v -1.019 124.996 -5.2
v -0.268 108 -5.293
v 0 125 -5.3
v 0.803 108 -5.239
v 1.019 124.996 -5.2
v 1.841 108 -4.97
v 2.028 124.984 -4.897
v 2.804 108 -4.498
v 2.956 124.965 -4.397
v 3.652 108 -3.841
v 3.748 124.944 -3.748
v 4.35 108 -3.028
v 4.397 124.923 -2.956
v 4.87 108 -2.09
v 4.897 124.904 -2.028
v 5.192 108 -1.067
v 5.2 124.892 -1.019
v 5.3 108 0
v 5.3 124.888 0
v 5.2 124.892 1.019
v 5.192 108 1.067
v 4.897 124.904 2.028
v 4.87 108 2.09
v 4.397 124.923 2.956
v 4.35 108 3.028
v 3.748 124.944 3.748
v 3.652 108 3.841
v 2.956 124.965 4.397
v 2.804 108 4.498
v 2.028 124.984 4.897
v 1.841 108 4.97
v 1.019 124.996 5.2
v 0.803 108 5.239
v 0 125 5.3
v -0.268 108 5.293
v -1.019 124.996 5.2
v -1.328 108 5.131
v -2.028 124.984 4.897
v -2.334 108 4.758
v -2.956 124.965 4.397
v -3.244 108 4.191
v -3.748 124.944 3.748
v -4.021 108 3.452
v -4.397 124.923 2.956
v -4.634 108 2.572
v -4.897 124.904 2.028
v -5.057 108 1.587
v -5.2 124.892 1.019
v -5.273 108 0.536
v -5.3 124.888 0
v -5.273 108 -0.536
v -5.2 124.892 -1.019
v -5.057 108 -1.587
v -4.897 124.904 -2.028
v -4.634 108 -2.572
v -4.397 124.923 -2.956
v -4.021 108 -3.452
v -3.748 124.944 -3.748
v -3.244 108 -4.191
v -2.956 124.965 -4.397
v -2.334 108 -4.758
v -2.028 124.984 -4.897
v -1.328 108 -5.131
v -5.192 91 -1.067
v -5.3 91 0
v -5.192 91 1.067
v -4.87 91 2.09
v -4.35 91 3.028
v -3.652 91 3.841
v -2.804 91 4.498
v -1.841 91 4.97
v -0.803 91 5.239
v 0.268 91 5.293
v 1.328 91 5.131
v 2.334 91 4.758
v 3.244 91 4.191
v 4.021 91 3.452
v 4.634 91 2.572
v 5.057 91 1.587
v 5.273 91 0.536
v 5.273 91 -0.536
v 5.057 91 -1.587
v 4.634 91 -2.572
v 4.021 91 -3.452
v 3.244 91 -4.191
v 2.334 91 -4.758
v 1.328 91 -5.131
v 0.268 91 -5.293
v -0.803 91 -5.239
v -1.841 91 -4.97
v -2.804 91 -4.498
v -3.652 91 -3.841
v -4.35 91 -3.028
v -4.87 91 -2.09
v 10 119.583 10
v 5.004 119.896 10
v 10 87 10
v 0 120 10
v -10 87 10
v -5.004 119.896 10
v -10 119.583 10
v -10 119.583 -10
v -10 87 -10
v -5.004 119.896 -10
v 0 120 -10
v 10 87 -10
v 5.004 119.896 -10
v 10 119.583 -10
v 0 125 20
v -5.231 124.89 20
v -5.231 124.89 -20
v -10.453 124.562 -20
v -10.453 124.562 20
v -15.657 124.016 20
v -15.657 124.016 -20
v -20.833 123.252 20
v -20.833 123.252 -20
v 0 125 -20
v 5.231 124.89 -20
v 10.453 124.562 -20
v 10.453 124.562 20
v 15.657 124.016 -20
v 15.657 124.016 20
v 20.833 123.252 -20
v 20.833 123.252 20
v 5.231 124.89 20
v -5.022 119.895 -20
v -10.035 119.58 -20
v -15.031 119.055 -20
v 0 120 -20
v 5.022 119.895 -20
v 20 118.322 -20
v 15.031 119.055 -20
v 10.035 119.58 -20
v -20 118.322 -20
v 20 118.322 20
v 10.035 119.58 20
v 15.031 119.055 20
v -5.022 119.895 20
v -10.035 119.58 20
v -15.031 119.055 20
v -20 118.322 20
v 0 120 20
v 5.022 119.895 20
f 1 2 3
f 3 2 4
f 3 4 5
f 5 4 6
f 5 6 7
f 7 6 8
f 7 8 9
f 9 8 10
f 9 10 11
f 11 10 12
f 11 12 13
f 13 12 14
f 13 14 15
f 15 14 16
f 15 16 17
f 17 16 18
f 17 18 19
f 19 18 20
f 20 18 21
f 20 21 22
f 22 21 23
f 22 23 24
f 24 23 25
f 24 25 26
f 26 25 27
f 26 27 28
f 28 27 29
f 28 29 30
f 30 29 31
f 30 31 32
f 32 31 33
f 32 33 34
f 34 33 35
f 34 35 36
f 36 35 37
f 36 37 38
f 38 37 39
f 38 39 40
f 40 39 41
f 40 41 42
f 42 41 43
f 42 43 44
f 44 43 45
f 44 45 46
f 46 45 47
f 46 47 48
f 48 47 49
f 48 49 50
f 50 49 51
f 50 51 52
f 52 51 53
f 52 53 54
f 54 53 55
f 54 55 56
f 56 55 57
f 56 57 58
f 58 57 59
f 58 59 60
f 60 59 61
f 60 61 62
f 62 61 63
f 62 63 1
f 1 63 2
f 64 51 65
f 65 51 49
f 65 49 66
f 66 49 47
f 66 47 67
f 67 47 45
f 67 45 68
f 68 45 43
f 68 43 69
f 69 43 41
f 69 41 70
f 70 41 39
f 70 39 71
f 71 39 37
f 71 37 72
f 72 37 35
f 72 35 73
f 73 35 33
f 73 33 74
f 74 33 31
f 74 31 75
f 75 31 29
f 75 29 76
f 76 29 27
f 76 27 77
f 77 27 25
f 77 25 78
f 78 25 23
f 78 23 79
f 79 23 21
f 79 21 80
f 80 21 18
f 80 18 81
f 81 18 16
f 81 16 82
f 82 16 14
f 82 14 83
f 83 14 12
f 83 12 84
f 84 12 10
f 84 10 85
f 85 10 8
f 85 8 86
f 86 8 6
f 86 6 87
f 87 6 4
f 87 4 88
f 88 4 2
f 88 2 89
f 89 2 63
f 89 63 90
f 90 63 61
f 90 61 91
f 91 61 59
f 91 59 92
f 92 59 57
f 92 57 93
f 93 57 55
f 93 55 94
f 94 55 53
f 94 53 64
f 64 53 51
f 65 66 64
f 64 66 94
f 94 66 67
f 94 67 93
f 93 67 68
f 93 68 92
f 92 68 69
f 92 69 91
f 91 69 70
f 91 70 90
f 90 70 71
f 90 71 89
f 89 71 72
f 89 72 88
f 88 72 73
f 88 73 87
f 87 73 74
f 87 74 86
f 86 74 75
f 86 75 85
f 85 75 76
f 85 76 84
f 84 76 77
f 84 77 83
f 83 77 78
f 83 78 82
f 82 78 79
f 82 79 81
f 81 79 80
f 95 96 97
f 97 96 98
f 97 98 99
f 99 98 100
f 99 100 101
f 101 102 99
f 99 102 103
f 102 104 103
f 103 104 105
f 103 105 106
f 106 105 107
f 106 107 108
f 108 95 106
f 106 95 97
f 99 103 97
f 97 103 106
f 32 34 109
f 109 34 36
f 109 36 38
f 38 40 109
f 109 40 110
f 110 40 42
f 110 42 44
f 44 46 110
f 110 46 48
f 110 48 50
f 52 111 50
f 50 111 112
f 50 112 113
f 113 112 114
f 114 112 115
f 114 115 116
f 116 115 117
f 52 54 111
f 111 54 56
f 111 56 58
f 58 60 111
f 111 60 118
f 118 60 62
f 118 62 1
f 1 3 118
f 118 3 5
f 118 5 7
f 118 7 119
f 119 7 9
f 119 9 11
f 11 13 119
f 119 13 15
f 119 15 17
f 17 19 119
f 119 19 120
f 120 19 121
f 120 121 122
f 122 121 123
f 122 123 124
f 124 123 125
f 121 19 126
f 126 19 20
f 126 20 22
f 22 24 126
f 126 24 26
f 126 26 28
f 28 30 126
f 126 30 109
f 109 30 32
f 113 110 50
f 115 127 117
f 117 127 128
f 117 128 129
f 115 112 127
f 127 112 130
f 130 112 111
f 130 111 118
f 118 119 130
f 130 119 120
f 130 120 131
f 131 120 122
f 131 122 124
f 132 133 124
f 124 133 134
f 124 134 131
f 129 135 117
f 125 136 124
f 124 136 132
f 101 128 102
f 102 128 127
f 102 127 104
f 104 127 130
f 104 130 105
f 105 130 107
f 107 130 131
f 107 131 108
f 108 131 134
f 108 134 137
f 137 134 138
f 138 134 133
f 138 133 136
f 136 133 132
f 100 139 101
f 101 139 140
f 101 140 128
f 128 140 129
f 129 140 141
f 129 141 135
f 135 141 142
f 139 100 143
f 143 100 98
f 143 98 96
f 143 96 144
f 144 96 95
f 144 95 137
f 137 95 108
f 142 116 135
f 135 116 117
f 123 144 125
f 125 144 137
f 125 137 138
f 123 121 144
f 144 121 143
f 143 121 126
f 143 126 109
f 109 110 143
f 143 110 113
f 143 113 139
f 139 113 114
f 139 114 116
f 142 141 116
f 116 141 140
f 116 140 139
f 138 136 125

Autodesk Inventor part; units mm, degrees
ref_plane "YZ Plane" through (0, 0, 0) normal (1, 0, 0) x (0, 1, 0)
ref_plane "XY Plane" through (0, 0, 0) normal (0, 0, 1) x (1, 0, 0)
sketch "Sketch1" plane through (0, 0, 0) normal (0, 0, 1) x (1, 0, 0)
  arc A0 (20.833333, 123.251662) -> (-20.833333, 123.251662) centre (0, 0) ccw
  arc A1 (20, 118.321596) -> (-20, 118.321596) centre (0, 0) ccw
  line L0 (-20, 118.321596) -> (-20.833333, 123.251662)
  line L1 (0, 0) -> (0, 133.48158) construction
  line L2 (20, 118.321596) -> (20.833333, 123.251662)
  dimension "d0" = 250
  dimension "d1" = 5
  dimension "d2" = 40
extrude "Extrusion1" add sketch "Sketch1" along normal mid plane 40
ref_plane "Work Plane3" through (0, 87, 0) normal (0, 1, 0) x (-1, 0, 0)
ref_plane "Work Plane2" through (0, 125, 0) normal (0, 1, 0) x (-1, 0, 0)
sketch "Sketch3" plane through (0, 87, 0) normal (0, 1, 0) x (-1, 0, 0)
  line L0 (10, -10) -> (-10, -10)
  line L1 (-10, -10) -> (-10, 10)
  line L2 (-10, 10) -> (10, 10)
  line L3 (10, 10) -> (10, -10)
  line L4 (10, -10) -> (-10, 10) construction
  line L5 (-10, -10) -> (10, 10) construction
  point P0 (0, 0)
  dimension "d6" = 20
  dimension "d7" = 20
extrude "Extrusion2" add sketch "Sketch3" along normal up to next
sketch "Sketch4" plane through (0, 125, 0) normal (0, 1, 0) x (-1, 0, 0)
  circle A0 centre (0, 0) radius 5.3
  dimension "d10" = 10.6
extrude "Extrusion3" cut sketch "Sketch4" against normal blind 34
properties part number "shiftt_fixed_plate" material "Acetal Resin, Black"
